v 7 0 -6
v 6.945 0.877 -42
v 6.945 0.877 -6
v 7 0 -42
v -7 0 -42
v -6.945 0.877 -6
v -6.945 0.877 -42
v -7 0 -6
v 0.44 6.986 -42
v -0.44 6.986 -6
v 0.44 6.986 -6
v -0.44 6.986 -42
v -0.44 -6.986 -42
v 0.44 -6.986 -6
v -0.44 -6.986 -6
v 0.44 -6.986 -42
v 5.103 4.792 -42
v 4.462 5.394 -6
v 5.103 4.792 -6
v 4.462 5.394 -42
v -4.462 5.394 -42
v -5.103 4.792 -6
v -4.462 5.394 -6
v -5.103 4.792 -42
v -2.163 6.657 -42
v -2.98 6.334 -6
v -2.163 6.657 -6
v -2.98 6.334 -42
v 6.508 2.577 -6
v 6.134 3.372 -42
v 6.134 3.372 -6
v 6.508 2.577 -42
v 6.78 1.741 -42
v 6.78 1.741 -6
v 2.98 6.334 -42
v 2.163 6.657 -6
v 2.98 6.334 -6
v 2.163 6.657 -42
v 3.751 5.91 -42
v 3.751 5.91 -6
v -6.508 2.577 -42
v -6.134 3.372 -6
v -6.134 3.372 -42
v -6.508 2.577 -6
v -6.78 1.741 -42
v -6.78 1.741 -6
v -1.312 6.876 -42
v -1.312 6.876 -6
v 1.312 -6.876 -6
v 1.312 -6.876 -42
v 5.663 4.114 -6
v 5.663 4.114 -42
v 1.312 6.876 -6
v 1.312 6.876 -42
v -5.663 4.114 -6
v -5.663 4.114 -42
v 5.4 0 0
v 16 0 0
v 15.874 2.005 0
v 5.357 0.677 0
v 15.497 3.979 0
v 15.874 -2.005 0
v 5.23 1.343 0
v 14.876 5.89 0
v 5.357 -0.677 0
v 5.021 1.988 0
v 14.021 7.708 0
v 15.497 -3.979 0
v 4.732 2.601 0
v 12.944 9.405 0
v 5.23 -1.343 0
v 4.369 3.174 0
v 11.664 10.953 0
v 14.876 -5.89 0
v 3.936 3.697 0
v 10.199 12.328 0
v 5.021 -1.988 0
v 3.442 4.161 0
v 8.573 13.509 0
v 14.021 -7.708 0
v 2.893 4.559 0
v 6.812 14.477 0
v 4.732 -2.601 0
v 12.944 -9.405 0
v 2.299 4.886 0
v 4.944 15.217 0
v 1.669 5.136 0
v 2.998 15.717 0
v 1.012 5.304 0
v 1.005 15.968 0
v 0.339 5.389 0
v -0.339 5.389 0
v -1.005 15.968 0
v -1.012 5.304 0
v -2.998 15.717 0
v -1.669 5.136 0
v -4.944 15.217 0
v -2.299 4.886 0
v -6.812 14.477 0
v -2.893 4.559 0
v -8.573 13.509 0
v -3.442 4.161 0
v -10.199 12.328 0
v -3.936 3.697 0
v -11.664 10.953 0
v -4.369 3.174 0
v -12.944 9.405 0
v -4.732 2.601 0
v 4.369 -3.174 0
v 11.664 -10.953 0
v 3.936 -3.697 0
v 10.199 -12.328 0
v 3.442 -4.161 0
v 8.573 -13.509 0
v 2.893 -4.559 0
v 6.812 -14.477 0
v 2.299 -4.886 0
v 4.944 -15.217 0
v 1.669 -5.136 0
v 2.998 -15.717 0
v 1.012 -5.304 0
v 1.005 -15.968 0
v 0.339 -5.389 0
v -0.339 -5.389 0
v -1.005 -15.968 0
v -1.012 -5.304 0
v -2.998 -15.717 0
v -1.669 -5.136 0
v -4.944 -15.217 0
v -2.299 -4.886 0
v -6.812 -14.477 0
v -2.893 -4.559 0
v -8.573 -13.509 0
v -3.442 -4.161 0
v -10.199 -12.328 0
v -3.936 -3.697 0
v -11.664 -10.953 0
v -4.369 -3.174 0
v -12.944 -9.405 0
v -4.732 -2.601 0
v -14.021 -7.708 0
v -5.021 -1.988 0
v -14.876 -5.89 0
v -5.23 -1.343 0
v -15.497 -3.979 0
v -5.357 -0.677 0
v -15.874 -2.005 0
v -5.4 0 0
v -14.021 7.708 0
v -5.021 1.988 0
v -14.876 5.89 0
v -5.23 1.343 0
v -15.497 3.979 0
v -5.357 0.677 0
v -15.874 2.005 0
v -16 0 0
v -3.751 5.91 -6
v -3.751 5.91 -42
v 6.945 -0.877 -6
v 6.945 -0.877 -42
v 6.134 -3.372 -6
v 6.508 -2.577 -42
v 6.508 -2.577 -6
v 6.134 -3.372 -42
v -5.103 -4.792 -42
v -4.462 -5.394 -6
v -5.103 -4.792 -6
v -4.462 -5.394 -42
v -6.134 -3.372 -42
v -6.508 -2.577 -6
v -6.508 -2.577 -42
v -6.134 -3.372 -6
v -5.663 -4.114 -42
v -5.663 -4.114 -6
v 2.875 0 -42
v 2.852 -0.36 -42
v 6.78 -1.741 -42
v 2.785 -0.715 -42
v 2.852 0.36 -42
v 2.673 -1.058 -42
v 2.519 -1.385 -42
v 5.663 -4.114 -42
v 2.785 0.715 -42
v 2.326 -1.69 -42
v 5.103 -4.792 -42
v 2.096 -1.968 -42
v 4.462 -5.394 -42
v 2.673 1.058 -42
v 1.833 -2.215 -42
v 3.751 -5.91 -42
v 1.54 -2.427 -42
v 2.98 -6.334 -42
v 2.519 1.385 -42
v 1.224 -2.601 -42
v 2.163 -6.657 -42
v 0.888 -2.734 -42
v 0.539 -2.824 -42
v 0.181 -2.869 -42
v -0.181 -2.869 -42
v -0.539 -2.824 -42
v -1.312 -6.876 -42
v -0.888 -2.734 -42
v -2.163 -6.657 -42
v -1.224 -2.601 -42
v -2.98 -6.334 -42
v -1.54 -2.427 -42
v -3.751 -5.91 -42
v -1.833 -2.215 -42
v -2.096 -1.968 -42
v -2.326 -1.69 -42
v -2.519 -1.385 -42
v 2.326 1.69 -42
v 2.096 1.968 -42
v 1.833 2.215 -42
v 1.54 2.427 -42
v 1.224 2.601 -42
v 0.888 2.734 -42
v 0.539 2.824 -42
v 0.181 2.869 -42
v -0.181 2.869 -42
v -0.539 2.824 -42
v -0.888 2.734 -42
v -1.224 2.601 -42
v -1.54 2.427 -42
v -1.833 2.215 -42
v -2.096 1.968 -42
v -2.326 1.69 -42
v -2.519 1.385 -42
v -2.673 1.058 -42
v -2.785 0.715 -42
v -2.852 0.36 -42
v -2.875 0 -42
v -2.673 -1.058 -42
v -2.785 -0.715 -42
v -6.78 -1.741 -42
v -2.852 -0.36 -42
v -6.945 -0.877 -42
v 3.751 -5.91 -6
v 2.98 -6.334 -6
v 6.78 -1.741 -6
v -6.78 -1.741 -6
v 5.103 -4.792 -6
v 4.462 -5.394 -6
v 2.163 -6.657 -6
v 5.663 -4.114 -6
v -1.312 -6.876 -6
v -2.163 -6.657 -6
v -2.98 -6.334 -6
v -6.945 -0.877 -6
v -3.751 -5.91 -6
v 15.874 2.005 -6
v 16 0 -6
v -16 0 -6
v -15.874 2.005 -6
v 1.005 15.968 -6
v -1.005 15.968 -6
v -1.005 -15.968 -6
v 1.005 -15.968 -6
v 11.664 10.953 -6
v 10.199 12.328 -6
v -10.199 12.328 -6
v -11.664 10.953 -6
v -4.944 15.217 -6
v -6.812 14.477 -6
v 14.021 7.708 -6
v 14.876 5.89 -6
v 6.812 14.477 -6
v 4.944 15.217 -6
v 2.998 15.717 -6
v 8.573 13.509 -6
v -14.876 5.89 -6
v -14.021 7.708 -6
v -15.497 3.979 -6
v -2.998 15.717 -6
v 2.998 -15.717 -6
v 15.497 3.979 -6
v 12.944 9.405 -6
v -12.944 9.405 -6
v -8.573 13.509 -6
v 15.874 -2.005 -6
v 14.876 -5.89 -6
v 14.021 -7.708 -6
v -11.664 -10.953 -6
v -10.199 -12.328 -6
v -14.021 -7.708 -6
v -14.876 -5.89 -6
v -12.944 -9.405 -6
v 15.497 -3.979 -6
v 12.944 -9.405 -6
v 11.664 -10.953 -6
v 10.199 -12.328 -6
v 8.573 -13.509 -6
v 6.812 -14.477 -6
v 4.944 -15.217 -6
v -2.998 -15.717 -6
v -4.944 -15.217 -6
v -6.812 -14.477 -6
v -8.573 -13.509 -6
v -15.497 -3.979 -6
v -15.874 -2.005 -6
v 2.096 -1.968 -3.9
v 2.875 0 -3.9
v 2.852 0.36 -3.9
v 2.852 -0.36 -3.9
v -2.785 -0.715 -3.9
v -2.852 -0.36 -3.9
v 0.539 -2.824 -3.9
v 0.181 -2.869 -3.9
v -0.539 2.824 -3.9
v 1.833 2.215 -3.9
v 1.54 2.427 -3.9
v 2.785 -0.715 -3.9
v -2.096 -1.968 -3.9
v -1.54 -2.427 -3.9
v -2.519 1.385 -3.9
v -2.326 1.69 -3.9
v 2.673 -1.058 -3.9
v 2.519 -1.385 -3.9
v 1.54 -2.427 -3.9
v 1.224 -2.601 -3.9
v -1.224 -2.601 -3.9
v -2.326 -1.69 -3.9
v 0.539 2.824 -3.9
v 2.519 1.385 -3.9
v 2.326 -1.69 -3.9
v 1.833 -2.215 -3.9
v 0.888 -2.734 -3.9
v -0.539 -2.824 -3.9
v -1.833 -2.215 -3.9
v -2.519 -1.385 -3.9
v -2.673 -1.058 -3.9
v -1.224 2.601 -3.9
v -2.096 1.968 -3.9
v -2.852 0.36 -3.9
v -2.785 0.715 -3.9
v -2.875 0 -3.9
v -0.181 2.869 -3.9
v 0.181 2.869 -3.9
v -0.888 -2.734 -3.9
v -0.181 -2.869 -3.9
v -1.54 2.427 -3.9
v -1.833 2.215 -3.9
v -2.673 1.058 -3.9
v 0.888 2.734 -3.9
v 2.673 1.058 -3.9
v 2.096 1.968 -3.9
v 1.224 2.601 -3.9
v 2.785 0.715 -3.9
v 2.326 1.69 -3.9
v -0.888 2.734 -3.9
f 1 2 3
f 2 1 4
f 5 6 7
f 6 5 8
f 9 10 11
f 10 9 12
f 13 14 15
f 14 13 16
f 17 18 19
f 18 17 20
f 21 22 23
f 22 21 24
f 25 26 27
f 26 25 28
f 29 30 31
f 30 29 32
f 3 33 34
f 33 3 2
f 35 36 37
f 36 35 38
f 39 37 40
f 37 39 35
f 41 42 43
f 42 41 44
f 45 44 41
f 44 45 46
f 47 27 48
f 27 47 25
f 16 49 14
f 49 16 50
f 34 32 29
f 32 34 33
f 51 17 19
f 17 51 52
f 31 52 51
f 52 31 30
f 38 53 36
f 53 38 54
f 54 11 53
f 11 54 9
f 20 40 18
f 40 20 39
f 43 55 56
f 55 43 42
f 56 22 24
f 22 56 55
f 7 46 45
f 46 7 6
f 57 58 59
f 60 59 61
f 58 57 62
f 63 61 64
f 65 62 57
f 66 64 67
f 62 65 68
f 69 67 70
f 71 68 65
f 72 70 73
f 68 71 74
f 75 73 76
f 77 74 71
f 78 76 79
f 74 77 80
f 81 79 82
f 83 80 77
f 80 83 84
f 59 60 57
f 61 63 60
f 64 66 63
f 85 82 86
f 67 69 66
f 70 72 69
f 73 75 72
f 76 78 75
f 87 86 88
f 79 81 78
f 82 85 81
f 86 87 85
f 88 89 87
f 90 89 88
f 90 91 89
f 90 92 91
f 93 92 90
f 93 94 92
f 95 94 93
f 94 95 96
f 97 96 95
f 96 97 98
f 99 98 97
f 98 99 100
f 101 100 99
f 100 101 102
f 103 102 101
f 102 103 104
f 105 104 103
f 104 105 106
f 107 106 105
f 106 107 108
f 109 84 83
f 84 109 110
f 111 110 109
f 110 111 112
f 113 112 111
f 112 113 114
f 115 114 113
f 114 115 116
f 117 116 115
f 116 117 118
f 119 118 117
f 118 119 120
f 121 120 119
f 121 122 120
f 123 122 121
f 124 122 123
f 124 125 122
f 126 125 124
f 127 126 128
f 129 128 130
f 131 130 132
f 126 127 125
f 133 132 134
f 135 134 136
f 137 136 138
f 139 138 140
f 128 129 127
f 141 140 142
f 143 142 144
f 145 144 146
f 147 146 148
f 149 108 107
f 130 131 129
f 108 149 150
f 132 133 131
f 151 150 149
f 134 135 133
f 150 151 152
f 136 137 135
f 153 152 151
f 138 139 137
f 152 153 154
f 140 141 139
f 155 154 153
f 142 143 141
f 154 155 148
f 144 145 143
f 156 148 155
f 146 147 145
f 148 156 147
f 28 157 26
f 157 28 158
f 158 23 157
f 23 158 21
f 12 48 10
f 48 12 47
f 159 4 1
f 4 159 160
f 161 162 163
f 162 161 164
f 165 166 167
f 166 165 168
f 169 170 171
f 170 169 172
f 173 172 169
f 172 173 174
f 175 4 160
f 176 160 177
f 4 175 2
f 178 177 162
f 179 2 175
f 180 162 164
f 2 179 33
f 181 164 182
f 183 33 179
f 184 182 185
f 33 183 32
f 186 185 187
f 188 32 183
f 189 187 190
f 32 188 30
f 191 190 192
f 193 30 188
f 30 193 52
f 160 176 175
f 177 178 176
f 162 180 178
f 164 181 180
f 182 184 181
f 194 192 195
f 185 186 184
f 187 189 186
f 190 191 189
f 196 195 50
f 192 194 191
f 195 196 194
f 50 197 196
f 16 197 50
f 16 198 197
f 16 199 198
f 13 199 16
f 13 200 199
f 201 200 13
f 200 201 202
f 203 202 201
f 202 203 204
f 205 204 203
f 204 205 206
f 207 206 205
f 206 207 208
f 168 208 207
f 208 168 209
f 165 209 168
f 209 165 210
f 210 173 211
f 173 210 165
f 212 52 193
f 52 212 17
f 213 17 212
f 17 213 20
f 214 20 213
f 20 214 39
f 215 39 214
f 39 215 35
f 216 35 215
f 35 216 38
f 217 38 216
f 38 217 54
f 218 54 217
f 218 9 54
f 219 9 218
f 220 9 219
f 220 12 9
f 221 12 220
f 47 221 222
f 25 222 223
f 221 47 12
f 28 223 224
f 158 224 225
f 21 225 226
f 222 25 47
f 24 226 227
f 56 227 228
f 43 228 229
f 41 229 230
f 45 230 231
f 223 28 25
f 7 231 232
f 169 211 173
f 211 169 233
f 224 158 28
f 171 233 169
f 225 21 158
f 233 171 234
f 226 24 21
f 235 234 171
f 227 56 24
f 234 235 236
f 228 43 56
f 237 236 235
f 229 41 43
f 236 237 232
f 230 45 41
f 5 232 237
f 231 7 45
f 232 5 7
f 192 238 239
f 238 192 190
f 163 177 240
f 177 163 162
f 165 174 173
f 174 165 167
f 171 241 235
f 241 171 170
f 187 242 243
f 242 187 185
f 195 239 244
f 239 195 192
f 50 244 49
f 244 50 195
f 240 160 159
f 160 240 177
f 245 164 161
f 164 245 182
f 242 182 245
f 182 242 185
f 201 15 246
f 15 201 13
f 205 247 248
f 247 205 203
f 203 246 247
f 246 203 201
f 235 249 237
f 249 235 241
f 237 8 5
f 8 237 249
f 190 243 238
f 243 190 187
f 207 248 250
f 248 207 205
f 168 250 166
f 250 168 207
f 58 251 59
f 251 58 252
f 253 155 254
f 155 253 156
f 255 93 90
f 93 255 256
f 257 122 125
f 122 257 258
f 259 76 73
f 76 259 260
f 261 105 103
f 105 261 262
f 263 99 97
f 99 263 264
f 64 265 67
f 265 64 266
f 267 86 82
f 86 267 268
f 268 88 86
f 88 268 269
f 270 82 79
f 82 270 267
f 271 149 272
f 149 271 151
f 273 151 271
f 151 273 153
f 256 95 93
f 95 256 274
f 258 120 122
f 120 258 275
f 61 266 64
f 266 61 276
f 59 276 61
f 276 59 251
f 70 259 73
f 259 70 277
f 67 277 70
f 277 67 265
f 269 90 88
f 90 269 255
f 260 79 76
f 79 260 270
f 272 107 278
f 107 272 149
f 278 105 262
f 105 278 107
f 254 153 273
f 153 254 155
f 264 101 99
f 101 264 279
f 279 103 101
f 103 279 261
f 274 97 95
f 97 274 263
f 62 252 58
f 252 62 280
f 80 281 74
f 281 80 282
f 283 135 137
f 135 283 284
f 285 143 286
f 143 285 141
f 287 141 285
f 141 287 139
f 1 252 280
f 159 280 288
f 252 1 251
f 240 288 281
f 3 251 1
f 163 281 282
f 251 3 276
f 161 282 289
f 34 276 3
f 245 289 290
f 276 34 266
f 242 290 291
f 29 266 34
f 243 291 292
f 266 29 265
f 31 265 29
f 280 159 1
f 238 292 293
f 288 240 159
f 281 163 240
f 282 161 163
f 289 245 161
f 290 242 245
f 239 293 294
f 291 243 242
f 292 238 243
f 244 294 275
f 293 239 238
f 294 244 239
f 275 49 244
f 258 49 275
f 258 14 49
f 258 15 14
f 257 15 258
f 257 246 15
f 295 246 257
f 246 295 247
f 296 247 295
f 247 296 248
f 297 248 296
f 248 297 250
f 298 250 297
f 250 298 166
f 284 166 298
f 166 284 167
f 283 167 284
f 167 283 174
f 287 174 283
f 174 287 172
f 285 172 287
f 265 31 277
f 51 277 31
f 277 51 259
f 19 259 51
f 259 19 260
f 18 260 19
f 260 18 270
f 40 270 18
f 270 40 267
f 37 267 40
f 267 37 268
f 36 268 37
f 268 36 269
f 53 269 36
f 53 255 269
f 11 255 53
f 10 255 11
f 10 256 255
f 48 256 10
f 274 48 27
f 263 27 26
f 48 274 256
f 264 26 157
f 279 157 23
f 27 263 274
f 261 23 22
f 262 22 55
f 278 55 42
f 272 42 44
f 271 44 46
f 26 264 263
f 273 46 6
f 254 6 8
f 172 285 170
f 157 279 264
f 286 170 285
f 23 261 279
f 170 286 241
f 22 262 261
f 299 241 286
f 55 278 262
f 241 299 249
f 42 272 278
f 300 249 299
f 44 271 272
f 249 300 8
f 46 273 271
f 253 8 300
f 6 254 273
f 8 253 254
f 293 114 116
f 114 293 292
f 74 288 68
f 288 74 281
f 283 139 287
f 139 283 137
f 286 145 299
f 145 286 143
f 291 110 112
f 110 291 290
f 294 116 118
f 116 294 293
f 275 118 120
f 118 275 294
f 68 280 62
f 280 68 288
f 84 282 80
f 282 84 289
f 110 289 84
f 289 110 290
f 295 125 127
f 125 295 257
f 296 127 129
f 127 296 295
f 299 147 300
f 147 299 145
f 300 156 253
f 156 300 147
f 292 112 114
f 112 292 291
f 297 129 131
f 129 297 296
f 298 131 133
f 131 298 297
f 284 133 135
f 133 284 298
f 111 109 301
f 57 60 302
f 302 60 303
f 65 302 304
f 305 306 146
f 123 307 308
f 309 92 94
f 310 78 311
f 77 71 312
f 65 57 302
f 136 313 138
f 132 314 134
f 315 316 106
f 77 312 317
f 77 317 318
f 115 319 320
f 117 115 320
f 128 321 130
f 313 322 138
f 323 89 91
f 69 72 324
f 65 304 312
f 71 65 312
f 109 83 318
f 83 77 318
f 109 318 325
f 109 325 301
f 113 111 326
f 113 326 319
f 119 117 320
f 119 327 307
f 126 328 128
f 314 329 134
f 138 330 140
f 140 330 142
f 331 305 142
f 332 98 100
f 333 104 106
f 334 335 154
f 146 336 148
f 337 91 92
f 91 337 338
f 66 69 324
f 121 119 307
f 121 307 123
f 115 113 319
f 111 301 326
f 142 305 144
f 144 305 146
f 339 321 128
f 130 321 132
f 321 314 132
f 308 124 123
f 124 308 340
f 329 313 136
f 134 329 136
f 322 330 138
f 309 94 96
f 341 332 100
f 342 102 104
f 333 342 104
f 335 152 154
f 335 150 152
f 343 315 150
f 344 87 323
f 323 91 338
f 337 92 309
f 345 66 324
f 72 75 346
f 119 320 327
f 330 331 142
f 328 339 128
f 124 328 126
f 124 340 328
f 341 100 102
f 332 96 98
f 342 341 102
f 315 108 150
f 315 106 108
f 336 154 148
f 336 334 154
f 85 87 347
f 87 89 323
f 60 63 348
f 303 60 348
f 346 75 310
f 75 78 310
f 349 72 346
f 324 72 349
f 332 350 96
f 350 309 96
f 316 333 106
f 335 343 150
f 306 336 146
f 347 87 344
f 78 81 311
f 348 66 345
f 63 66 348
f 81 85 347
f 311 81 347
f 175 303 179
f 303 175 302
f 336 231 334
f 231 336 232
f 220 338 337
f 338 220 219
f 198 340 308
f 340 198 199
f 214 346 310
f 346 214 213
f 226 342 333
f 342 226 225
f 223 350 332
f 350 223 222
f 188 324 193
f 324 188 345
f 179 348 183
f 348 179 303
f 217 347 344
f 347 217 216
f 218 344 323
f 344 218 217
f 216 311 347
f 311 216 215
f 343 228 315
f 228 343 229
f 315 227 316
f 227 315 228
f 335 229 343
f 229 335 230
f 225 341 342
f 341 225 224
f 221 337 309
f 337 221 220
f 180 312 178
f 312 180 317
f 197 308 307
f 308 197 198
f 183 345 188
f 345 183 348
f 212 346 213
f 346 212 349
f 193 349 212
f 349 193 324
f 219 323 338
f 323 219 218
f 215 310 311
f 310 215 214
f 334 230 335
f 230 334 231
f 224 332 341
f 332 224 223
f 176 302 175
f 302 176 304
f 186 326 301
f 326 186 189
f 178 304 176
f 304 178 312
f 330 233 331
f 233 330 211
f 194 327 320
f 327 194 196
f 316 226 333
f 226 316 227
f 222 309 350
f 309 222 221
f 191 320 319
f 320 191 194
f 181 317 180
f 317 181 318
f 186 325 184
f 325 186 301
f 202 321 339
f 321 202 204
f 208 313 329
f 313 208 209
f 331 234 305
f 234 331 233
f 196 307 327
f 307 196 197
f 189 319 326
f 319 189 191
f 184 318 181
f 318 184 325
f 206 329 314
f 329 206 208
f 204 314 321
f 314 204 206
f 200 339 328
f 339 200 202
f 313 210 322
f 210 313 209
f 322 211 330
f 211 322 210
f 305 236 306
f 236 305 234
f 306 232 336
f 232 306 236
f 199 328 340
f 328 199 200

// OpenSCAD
$fn = 50;


difference() {
	union() {
		translate(v = [0, 0, -42.0000000000]) {
			cylinder(h = 42, r = 7.0000000000);
		}
		translate(v = [0, 0, -6.0000000000]) {
			cylinder(h = 6, r = 16.0000000000);
		}
	}
	union() {
		translate(v = [0, 0, 0]) {
			rotate(a = [0, 0, 0]) {
				difference() {
					union() {
						#translate(v = [0, 0, -42.0000000000]) {
							cylinder(h = 42, r = 2.6000000000);
						}
						#translate(v = [0, 0, -3.9000000000]) {
							cylinder(h = 3.9000000000, r1 = 2.8750000000, r2 = 5.4000000000);
						}
						#translate(v = [0, 0, -42.0000000000]) {
							cylinder(h = 42, r = 2.8750000000);
						}
						#translate(v = [0, 0, -42.0000000000]) {
							cylinder(h = 42, r = 2.6000000000);
						}
					}
					union();
				}
			}
		}
	}
}
